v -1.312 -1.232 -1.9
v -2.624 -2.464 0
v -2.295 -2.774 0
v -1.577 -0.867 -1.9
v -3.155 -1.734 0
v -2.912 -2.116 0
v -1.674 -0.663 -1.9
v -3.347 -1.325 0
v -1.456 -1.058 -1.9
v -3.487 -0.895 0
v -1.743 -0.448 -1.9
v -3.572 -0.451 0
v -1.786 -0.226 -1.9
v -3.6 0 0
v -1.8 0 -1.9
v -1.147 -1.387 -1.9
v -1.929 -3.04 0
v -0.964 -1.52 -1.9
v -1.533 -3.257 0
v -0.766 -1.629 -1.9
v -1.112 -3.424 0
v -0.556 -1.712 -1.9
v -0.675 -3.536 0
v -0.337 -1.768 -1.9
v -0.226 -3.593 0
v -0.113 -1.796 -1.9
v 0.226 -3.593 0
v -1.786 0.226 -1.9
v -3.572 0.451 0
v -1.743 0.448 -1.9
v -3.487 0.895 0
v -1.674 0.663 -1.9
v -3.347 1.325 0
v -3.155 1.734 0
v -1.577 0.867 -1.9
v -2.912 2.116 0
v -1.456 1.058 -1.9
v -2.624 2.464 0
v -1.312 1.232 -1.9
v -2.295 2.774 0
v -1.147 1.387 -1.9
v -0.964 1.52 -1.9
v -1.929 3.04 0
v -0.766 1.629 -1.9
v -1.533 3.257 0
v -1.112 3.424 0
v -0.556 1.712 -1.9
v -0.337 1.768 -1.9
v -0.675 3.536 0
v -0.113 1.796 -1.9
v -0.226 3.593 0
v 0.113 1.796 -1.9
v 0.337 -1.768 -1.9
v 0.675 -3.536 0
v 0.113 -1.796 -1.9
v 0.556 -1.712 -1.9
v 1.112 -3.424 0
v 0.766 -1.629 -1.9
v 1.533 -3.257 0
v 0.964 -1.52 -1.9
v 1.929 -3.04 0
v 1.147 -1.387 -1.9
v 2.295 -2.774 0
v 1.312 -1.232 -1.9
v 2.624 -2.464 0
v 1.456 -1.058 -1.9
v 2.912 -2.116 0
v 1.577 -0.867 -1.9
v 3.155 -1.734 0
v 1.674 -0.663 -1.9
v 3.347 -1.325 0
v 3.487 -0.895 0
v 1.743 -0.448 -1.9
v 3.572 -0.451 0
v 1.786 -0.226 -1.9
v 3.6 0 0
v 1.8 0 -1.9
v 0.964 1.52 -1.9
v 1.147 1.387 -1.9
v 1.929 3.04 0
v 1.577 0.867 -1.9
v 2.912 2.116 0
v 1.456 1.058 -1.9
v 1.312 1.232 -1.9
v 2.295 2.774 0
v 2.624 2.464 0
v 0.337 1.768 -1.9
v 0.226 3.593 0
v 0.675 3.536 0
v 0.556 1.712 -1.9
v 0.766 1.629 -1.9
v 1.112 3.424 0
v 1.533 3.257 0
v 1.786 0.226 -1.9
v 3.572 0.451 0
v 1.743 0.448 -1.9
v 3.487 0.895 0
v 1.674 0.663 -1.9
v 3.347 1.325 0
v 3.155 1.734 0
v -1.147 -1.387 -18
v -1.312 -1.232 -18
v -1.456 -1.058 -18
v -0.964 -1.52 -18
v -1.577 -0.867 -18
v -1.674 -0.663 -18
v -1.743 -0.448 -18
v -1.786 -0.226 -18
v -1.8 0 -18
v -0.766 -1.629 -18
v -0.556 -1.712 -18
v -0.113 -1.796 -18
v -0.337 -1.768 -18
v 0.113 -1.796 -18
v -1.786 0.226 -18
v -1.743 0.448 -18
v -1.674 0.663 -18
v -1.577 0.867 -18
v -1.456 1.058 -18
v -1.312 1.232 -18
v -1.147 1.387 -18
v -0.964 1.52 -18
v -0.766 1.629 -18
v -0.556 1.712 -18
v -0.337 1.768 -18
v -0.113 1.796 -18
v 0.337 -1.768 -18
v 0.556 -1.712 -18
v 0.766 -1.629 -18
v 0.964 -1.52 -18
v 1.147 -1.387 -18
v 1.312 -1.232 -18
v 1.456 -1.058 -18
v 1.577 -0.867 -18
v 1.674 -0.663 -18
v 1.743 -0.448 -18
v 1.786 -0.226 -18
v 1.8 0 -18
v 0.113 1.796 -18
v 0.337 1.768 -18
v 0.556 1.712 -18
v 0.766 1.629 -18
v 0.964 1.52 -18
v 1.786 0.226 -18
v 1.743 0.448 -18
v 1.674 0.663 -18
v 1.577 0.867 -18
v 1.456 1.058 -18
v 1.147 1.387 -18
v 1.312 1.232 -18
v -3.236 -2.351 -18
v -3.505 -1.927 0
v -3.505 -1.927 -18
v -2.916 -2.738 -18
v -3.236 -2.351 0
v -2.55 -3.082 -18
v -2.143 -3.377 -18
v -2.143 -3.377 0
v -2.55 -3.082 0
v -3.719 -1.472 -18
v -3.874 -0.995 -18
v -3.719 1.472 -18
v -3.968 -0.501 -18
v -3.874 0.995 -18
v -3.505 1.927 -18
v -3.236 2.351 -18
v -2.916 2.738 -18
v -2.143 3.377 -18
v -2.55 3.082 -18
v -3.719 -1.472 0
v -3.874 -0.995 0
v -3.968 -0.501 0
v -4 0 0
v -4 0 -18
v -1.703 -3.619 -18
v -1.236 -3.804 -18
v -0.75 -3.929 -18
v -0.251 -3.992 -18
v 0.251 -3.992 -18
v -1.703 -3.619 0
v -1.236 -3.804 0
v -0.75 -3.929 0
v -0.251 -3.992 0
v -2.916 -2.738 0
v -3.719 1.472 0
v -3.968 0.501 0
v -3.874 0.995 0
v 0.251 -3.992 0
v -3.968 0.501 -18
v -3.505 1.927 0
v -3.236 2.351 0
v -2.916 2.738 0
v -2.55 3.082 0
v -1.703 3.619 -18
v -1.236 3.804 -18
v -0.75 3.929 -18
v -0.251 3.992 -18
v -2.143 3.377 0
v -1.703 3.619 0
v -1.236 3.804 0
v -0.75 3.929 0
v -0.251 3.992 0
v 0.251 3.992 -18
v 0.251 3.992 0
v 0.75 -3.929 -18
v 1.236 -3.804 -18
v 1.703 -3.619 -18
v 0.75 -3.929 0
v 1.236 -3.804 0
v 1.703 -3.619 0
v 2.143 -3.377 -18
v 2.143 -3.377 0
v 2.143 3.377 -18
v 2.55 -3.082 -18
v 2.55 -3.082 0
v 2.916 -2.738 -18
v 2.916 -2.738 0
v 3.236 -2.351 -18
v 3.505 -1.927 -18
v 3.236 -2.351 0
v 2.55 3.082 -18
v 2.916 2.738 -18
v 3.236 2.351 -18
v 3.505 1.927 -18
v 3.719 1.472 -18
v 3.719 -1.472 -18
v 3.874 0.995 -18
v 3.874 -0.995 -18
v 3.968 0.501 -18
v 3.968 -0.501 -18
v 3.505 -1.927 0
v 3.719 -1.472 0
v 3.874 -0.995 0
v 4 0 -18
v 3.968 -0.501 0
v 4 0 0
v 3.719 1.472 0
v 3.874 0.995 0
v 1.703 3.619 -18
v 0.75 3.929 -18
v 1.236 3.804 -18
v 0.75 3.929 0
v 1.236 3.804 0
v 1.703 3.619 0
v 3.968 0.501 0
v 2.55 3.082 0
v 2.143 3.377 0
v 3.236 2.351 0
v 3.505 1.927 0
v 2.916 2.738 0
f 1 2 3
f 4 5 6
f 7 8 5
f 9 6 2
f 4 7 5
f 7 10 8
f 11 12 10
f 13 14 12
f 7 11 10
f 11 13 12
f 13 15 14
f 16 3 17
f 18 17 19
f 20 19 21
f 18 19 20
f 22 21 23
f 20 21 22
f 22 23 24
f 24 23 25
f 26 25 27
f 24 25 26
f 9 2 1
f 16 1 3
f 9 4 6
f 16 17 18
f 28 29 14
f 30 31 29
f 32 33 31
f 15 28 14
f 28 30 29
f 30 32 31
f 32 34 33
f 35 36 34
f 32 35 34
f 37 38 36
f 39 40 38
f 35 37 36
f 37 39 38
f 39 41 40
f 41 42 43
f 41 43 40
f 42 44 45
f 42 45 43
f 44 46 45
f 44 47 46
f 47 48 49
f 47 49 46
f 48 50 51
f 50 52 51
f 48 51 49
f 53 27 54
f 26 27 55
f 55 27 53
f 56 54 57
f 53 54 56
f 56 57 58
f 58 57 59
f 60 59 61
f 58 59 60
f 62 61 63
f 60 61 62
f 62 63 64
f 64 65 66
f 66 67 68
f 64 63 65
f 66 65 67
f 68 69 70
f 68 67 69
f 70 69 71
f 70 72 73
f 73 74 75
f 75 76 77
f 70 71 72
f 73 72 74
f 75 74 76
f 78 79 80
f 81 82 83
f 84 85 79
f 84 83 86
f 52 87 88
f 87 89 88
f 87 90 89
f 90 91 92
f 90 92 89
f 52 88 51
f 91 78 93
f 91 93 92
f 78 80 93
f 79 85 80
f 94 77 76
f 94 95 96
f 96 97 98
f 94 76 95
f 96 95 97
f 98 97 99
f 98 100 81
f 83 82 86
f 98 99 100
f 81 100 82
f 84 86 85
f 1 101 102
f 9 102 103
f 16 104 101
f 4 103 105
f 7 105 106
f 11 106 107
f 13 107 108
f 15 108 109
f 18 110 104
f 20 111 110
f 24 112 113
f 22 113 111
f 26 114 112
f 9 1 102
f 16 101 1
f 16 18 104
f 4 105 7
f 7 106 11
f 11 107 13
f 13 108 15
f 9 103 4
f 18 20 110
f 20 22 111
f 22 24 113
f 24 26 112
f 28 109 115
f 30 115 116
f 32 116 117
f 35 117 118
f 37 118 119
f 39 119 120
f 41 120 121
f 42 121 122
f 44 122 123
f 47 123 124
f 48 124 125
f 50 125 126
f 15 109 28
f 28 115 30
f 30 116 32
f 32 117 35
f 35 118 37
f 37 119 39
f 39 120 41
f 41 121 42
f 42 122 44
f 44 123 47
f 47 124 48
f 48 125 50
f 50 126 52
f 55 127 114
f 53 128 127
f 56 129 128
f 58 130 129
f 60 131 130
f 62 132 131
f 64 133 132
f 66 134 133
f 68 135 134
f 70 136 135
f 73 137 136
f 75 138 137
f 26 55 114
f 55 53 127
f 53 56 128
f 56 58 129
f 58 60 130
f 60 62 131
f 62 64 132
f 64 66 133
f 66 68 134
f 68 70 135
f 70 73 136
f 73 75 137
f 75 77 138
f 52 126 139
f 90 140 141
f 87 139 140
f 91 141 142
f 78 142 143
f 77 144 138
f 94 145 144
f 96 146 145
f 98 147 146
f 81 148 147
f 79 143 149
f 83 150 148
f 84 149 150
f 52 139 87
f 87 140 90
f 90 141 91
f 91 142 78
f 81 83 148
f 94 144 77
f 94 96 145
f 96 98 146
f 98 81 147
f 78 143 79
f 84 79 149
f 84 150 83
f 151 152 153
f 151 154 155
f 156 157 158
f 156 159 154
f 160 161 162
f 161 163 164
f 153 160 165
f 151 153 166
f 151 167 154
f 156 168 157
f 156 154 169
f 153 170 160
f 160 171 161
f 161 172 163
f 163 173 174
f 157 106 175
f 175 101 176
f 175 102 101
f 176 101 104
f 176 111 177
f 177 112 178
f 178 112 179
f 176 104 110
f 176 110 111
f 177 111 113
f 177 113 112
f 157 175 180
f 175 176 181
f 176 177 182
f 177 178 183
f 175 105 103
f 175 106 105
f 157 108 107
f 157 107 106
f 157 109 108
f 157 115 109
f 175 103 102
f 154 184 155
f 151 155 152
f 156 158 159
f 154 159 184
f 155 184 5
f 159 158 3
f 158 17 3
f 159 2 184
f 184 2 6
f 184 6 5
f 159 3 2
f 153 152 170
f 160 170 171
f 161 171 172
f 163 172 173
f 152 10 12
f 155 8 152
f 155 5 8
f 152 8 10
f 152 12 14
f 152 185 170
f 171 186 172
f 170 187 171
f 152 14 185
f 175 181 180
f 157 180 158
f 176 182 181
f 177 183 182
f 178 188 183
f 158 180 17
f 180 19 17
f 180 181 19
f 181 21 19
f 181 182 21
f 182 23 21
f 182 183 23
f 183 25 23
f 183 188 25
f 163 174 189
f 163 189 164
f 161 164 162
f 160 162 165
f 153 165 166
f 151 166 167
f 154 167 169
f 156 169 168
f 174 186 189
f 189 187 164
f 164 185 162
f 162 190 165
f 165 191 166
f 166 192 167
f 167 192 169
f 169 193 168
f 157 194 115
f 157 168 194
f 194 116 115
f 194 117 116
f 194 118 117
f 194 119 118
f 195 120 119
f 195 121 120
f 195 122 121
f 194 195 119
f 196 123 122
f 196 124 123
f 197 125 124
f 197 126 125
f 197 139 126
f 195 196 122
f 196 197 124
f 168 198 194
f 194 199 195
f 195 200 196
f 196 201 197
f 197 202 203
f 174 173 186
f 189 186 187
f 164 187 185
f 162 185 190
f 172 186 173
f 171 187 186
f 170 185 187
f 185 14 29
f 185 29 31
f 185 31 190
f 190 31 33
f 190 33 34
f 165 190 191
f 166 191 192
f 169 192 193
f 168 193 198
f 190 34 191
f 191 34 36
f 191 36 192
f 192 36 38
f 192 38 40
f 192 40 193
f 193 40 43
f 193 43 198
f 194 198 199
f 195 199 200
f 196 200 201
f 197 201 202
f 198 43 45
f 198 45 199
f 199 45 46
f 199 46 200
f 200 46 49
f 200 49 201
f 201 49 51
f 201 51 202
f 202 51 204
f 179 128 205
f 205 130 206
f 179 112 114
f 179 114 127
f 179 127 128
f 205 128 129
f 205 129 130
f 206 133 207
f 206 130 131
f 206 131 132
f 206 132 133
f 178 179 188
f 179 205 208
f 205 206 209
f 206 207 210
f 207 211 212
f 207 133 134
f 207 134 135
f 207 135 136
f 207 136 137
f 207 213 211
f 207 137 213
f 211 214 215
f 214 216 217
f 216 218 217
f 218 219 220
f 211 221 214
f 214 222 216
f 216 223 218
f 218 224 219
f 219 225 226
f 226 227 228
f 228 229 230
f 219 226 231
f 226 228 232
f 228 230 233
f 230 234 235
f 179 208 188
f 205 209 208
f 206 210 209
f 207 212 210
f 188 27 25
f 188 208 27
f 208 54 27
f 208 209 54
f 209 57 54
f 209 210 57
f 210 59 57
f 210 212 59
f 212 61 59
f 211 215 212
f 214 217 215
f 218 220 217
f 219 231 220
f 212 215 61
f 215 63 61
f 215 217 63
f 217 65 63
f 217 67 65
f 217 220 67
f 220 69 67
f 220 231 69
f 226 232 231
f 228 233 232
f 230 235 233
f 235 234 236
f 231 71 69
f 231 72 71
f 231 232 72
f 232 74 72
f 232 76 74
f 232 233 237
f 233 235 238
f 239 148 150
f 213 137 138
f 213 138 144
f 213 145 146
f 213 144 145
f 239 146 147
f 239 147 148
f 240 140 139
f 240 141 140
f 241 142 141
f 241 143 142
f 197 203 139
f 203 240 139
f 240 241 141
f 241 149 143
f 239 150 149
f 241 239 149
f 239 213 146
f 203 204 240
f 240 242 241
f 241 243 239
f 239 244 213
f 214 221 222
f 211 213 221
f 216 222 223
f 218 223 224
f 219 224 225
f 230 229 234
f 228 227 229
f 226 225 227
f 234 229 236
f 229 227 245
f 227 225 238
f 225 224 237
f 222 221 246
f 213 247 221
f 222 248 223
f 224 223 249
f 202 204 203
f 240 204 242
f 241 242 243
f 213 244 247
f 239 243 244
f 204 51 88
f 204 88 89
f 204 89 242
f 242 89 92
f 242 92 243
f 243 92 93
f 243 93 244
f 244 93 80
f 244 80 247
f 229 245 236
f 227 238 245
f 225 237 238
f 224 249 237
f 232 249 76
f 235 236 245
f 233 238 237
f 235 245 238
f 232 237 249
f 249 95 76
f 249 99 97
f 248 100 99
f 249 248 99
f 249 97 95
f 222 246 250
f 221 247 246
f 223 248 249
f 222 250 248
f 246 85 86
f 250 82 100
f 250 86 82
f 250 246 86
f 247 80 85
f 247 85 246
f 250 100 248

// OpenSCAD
$fn = 50;

difference() {
	union() {
		translate(v = [0, 0, -18.0]) {
			cylinder(h = 21, r = 4.0);
		}
	}
	union() {
		translate(v = [0, 0, 0]) {
			rotate(a = [0, 0, 0]) {
				difference() {
					union() {
						translate(v = [0, 0, -21.0]) {
							cylinder(h = 21, r = 1.5);
						}
						translate(v = [0, 0, -1.9]) {
							cylinder(h = 1.9, r1 = 1.8, r2 = 3.6);
						}
						translate(v = [0, 0, -21.0]) {
							cylinder(h = 21, r = 1.8);
						}
						translate(v = [0, 0, -21.0]) {
							cylinder(h = 21, r = 1.5);
						}
					}
					union();
				}
			}
		}
		#cylinder(h = 3, r = 5.0);
	}
}
